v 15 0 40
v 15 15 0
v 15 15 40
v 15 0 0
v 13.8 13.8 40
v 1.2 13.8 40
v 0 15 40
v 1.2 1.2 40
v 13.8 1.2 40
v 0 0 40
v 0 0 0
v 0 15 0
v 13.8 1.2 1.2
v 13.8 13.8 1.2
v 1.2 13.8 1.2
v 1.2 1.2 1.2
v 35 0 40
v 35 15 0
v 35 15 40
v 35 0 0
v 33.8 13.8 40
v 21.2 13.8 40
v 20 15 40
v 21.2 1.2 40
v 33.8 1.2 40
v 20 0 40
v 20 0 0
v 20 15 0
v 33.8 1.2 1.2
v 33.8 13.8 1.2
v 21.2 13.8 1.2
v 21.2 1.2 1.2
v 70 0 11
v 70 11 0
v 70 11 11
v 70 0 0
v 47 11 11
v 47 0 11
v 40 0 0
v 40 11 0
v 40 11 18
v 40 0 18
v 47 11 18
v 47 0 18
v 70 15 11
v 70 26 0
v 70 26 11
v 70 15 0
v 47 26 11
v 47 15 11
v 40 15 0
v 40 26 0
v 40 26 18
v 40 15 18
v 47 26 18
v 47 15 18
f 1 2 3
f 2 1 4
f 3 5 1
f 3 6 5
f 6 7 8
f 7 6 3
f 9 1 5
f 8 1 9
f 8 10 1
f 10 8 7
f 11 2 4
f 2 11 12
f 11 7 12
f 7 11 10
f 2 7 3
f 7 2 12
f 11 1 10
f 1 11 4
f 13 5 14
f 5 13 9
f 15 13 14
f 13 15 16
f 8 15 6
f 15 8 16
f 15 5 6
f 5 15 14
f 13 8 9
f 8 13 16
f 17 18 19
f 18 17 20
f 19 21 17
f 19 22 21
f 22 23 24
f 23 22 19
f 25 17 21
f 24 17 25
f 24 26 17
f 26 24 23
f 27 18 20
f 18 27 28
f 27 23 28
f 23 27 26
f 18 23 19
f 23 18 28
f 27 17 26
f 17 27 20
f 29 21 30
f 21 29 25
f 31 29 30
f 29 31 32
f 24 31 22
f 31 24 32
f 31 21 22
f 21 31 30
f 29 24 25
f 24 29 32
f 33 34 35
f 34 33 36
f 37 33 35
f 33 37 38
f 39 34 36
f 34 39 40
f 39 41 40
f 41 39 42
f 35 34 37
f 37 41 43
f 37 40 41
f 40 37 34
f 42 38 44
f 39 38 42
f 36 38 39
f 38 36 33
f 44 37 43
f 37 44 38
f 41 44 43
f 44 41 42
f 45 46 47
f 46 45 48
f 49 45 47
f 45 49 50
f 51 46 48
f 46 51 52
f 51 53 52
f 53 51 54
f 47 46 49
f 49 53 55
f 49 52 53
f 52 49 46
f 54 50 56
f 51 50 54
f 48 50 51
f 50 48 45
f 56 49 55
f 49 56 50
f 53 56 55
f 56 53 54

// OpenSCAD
module leg() {
    difference() {
        cube([15, 15, 40]);
        translate([1.2, 1.2, 1.2]) {
            cube([15-2.4, 15-2.4, 40]);
        }
    }
}

module arm() {
    cube([30, 11, 11]);
    translate([0, 0, 11]) {
        cube([7, 11, 7]);
    }
}

leg();
translate([20, 0, 0]) leg();

translate([40, 0, 0]) arm();

translate([40, 15, 0]) arm();
